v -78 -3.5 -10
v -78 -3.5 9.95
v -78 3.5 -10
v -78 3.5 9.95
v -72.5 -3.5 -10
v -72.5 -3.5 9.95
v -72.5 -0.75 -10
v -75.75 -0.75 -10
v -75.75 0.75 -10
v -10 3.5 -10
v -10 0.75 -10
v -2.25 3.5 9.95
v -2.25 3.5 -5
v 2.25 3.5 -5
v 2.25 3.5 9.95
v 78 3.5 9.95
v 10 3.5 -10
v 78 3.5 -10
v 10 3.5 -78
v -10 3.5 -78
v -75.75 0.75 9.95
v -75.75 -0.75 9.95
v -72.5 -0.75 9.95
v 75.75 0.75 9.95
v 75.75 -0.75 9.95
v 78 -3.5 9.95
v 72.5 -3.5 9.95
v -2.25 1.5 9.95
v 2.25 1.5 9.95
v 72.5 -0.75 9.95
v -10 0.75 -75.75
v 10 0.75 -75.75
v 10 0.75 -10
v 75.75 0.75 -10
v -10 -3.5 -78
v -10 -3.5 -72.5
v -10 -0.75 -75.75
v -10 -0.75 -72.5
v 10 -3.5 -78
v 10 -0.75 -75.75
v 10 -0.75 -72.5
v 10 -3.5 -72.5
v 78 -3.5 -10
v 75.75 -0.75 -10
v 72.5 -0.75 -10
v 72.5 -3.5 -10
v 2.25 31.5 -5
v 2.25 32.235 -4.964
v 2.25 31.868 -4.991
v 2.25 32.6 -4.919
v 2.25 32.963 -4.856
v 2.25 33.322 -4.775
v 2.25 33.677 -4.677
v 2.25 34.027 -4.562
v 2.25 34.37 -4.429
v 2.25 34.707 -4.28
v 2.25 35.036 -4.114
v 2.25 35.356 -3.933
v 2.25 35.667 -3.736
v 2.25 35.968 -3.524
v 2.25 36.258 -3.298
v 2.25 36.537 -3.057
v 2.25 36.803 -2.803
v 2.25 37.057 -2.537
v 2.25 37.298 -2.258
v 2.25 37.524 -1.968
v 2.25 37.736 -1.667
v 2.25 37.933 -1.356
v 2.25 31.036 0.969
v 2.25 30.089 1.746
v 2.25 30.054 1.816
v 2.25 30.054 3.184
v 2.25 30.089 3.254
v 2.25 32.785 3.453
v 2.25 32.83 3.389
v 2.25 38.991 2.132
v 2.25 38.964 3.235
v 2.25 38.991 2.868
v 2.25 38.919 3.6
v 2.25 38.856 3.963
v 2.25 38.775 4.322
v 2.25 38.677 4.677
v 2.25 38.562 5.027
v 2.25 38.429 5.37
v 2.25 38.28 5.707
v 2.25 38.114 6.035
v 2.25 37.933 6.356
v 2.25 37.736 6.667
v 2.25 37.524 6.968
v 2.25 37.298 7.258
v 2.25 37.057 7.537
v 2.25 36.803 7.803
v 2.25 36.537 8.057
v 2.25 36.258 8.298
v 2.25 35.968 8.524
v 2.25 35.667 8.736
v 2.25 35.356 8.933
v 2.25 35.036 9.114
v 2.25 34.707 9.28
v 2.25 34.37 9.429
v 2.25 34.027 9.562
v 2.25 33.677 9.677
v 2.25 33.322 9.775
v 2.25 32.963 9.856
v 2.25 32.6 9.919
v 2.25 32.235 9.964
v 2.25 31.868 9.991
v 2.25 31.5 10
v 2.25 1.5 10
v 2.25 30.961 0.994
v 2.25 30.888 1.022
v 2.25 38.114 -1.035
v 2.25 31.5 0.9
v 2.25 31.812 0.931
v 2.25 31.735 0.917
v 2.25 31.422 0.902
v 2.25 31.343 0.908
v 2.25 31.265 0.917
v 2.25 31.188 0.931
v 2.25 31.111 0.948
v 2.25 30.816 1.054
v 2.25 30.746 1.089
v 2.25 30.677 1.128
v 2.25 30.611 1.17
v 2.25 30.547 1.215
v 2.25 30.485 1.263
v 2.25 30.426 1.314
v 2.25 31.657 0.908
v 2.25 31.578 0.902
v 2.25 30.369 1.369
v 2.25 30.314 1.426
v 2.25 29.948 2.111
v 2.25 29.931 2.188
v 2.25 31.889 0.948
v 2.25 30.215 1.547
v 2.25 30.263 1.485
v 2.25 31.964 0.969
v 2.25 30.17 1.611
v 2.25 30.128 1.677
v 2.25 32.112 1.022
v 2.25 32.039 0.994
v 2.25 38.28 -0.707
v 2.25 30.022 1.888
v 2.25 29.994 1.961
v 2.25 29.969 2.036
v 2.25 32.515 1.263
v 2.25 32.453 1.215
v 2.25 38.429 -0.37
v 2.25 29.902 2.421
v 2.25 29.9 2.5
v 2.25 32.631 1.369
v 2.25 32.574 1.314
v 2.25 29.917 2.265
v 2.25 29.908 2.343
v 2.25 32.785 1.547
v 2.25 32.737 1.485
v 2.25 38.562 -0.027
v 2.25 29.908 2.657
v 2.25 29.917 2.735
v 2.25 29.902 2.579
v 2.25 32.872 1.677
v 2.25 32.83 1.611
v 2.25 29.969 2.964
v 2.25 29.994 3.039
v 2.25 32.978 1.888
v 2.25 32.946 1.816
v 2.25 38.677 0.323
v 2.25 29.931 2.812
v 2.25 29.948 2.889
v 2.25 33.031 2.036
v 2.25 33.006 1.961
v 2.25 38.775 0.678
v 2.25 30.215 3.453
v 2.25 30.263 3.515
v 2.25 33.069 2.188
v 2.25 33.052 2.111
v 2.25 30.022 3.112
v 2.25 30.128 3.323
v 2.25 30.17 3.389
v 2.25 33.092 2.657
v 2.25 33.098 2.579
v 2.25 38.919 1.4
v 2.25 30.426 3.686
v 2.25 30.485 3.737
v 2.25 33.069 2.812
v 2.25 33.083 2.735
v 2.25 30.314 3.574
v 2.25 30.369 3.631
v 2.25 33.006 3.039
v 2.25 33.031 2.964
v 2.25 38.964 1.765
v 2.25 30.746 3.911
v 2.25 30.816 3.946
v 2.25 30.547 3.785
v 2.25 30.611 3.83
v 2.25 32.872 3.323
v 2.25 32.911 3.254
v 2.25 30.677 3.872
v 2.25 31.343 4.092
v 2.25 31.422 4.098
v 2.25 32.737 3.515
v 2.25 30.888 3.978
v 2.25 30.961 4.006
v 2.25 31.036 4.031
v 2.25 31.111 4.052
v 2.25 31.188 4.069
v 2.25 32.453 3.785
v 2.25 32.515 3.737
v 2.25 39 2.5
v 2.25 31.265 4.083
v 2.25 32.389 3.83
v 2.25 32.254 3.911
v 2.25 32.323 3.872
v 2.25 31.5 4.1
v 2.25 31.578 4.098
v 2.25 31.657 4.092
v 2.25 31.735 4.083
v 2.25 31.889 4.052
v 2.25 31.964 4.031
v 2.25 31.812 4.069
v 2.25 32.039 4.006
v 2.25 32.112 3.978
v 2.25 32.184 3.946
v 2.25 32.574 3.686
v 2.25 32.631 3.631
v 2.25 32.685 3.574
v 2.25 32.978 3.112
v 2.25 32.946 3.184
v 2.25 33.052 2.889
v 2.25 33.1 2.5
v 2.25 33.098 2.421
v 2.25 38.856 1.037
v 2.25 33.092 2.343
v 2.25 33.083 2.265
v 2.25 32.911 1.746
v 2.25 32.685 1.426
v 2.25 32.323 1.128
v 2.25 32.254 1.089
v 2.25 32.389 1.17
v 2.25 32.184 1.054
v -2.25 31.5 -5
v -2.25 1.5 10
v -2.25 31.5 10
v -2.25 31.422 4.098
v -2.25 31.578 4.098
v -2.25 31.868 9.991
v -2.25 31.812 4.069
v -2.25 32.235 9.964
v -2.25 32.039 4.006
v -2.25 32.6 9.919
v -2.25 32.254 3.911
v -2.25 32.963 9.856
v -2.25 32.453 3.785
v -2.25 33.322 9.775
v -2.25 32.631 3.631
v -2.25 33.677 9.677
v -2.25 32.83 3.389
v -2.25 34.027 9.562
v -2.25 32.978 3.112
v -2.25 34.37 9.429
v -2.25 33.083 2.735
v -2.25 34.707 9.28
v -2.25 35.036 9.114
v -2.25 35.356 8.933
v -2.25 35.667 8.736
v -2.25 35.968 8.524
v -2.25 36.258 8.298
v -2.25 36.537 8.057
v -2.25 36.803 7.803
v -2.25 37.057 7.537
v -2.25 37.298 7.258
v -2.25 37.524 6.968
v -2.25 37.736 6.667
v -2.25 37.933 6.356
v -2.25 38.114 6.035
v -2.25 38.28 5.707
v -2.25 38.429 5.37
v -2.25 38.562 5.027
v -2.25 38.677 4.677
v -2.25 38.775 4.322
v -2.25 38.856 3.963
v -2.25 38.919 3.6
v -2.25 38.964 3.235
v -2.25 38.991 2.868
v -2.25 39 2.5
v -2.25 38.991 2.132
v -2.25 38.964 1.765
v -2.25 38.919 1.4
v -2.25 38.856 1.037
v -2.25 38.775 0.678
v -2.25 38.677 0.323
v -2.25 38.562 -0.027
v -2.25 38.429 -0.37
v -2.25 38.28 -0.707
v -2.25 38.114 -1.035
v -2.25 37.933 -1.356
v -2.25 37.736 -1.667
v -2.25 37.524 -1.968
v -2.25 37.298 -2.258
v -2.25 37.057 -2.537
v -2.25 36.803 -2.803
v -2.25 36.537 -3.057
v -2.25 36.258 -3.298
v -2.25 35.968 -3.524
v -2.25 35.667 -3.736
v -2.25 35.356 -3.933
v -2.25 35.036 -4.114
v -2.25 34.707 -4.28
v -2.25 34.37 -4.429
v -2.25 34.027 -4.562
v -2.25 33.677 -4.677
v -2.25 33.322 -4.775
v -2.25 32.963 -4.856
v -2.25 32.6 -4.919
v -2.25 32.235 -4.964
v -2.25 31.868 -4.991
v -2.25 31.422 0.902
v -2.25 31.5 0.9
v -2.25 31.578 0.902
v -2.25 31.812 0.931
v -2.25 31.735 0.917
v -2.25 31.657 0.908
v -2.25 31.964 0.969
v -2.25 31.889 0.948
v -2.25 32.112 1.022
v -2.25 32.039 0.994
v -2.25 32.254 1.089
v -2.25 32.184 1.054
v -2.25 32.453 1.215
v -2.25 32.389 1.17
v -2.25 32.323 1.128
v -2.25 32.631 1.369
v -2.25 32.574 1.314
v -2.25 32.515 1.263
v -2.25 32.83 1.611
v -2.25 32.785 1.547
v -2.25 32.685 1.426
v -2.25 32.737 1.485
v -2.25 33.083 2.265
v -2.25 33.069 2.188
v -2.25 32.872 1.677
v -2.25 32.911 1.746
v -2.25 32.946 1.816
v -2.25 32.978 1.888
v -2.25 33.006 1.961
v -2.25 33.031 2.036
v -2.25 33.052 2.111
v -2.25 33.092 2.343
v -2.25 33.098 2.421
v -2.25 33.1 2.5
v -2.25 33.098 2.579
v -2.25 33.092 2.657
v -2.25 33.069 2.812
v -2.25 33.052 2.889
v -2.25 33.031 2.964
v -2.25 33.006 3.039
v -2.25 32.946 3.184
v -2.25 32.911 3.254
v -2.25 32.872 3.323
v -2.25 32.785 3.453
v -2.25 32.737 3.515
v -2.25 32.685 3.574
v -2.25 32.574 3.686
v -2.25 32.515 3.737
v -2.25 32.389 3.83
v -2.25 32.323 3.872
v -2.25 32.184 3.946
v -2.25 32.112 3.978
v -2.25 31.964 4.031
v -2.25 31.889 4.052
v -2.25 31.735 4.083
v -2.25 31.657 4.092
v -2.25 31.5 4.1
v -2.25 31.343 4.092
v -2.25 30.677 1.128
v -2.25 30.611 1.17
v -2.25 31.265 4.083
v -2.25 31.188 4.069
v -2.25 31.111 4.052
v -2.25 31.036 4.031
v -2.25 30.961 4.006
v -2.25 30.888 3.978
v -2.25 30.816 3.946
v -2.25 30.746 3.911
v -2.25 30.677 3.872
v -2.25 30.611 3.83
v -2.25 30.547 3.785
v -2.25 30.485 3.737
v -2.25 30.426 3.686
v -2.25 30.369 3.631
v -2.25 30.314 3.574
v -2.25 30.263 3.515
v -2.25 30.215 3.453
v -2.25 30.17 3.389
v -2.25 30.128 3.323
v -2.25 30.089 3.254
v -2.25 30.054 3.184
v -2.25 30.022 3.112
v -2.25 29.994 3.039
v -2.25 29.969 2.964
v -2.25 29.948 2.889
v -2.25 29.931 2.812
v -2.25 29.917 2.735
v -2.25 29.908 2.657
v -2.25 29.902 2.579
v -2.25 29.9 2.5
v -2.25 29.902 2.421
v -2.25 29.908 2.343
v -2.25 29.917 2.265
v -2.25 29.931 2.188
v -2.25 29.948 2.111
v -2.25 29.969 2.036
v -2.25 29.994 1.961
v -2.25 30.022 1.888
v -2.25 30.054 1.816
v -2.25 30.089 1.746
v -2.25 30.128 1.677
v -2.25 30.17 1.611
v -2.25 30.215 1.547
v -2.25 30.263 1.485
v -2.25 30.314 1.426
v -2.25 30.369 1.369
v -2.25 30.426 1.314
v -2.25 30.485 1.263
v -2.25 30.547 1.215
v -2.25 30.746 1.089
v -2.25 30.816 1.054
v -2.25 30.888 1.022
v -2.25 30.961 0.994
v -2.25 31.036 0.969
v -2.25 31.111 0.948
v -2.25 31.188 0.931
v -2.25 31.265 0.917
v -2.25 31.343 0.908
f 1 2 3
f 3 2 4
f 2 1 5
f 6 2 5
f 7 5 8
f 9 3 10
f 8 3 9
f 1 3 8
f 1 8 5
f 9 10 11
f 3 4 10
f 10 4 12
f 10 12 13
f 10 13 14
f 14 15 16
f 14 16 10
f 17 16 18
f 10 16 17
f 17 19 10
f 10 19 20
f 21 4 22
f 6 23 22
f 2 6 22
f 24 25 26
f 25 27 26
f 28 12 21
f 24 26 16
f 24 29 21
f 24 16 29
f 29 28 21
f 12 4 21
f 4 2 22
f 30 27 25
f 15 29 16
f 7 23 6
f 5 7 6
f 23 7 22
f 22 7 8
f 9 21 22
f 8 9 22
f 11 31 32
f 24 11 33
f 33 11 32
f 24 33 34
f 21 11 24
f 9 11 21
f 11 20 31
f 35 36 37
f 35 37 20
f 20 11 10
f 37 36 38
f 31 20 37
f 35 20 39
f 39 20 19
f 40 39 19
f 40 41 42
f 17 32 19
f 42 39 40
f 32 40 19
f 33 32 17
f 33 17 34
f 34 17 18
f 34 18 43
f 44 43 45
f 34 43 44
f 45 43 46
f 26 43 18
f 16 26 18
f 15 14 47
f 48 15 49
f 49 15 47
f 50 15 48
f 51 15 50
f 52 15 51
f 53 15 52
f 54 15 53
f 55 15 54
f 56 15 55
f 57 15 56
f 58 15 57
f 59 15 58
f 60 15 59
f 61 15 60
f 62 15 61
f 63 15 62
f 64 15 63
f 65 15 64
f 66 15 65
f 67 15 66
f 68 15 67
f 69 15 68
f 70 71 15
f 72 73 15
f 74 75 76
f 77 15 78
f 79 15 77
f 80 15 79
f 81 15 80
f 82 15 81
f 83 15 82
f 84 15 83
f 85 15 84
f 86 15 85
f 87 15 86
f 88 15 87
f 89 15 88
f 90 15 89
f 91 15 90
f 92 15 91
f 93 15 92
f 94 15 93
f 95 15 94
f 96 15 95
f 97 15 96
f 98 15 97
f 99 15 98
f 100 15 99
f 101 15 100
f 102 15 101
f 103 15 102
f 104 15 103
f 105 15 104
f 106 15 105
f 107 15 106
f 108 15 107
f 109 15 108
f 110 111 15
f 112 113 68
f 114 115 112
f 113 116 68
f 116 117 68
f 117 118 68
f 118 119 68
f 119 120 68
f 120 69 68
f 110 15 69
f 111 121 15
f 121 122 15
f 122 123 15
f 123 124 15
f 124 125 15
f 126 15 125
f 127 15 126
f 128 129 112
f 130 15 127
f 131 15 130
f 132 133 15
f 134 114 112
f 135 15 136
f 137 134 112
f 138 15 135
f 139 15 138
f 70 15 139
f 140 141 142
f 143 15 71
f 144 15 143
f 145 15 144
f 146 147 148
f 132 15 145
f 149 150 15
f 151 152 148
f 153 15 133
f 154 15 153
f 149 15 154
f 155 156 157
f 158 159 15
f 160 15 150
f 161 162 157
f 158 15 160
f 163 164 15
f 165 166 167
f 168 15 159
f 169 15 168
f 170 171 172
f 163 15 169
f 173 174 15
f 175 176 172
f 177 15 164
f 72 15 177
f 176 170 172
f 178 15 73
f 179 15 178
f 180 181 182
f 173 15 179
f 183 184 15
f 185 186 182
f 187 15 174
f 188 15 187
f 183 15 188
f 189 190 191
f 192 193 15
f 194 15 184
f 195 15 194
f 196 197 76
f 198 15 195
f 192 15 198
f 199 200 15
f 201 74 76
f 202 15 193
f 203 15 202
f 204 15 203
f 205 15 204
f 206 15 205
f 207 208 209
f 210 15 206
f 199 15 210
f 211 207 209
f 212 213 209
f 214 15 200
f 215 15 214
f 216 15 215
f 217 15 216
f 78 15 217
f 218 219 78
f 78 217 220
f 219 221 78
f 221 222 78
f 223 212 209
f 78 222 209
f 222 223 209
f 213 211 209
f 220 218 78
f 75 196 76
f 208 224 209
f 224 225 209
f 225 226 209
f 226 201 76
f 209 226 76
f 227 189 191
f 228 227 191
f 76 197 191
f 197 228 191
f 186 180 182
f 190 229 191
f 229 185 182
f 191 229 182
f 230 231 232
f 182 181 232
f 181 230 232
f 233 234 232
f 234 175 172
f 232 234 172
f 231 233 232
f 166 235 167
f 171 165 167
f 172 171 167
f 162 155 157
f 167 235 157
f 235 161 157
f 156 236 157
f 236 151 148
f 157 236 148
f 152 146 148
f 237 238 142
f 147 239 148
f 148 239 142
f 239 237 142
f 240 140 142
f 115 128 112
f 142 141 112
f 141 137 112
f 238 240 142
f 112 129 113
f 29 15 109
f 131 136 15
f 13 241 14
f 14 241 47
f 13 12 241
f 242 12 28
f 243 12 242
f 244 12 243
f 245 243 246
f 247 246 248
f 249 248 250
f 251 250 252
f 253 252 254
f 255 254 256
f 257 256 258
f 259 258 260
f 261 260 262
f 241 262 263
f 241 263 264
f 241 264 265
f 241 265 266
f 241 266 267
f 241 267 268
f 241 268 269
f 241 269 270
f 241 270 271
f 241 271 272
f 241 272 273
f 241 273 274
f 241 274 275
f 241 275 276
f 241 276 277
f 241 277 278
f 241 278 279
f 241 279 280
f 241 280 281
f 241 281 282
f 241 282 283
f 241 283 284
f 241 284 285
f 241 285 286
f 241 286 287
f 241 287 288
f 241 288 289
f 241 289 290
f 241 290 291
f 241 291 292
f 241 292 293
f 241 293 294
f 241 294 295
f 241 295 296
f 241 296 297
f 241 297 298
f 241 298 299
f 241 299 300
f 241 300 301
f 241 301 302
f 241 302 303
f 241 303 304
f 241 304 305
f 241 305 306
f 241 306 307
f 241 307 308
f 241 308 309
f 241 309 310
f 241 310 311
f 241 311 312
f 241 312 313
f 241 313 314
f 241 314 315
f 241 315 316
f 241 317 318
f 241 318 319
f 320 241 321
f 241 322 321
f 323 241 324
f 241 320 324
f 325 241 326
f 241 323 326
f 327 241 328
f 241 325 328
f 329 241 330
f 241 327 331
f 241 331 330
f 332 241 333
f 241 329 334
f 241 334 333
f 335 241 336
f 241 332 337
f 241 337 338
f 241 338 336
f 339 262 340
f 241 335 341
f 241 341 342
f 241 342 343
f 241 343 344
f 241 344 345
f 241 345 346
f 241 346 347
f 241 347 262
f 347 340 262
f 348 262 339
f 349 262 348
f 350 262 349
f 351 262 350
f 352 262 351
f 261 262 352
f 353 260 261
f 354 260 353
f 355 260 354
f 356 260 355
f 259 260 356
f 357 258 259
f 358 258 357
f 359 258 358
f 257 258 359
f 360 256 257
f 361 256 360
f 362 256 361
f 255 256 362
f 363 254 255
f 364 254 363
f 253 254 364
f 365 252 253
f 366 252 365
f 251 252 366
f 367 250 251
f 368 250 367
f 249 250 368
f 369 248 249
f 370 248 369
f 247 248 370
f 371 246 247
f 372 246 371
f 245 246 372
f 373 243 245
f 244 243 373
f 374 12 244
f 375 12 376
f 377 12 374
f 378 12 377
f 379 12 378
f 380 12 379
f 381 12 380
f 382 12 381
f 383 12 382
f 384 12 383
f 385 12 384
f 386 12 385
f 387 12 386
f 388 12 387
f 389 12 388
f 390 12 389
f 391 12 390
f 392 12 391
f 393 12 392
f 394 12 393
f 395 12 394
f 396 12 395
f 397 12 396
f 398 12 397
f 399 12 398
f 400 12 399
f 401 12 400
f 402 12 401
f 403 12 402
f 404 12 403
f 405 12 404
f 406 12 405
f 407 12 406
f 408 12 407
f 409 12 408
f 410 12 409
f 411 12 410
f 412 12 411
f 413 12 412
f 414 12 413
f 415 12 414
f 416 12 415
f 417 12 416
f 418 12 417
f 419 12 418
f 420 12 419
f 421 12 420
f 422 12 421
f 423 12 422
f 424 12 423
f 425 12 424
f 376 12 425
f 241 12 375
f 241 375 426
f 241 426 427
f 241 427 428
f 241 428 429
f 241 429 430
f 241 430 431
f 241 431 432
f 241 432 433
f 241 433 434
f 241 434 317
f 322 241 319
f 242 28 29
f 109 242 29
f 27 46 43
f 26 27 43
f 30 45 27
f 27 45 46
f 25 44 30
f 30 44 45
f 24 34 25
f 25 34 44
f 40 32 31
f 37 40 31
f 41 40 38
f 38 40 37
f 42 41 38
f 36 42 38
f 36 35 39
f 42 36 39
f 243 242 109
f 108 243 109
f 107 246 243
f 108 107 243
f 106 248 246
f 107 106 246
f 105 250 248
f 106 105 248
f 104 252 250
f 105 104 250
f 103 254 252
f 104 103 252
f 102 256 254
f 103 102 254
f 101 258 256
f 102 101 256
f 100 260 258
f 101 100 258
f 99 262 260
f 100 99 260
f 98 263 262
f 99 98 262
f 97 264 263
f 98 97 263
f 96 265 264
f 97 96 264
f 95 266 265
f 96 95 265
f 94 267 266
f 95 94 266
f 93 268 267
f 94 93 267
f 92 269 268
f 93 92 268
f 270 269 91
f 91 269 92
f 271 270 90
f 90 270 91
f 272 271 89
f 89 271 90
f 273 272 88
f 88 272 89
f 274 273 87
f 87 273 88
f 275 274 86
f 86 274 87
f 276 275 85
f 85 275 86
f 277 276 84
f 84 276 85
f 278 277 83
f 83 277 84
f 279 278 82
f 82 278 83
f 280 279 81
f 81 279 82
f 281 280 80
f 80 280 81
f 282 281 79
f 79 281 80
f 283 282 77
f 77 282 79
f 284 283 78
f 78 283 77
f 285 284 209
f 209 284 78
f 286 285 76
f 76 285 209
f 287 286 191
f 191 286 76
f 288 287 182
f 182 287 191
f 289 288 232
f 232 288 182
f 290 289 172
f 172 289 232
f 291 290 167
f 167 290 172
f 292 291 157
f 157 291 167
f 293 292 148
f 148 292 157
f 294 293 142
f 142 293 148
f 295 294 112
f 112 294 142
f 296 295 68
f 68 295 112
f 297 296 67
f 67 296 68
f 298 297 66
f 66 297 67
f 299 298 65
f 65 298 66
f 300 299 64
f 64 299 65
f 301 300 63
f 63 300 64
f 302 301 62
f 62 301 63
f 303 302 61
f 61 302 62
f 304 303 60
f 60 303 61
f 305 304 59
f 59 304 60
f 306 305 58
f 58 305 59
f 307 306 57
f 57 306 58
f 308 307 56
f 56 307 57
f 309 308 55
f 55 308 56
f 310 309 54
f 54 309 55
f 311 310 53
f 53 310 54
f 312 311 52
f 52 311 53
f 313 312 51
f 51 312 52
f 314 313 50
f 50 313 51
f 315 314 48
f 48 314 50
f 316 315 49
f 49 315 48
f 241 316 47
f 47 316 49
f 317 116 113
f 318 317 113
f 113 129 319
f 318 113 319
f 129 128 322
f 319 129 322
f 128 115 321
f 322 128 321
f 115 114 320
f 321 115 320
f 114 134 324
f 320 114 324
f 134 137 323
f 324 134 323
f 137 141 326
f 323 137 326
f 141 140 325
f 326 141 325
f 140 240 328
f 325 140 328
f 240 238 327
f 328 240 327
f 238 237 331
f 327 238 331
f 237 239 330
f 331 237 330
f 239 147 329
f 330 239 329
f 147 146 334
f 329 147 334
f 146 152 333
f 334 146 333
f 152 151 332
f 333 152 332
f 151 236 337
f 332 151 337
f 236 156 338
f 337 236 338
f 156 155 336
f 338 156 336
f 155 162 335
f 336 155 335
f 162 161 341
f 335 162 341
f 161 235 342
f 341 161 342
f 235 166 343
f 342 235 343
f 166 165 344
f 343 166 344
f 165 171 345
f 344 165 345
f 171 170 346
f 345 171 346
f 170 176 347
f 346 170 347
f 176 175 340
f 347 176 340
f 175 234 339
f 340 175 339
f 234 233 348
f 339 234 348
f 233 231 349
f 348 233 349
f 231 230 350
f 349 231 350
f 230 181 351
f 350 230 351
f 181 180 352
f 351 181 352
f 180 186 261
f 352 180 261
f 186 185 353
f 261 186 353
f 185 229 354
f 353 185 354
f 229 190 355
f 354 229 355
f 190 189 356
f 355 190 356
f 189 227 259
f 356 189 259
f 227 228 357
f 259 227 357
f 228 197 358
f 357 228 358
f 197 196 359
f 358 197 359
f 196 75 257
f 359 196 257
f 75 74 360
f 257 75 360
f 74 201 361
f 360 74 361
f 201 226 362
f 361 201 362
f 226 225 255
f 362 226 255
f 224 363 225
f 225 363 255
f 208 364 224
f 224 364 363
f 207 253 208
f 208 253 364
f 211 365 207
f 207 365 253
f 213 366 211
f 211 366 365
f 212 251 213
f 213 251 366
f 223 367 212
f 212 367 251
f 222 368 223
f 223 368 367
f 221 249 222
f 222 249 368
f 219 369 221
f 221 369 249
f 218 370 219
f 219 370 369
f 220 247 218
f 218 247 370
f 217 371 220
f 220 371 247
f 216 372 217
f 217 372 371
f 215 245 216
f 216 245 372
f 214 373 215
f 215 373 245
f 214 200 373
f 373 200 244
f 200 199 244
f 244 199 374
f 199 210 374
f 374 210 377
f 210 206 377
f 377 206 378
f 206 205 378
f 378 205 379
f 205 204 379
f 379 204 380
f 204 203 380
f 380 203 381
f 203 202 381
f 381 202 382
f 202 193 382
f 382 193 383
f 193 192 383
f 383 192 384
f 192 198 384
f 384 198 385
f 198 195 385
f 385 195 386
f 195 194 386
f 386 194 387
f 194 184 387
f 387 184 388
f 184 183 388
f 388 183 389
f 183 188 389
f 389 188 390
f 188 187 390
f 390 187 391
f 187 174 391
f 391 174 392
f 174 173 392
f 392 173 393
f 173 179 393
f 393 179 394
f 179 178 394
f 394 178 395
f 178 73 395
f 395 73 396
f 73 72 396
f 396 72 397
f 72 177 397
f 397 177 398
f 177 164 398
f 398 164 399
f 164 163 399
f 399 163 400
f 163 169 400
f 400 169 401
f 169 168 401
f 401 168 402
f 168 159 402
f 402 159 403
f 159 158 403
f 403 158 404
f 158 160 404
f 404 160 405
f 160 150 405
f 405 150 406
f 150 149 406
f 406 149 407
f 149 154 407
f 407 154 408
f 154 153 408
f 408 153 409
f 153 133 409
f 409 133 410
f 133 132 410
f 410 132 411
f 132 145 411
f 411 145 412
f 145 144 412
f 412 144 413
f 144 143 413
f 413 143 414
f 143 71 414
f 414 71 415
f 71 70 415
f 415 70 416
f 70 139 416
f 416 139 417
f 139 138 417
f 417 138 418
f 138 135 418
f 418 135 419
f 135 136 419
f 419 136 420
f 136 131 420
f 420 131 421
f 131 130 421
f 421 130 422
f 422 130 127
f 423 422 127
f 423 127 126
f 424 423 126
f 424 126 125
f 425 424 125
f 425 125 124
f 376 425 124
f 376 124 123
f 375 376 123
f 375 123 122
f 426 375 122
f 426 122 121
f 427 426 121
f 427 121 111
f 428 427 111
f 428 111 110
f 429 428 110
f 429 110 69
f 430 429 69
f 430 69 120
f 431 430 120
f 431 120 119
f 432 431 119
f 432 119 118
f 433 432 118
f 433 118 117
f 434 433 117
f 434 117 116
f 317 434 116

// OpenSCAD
$fn=128;

// mirror
%cube([150, 1, 150], center=true);

// mirror frame
difference()
{
	difference()
	{
		difference()
		{
			union(){
				cube([156, 7, 20], center=true);
				cube([20, 7, 156], center=true);
			}
			translate([0, -2, 0]) cube([145, 4, 145], center=true);
		}
		cube([151.5, 1.5, 151.5], center=true);
	}
	translate([0, 0, 44]) cube([156, 10, 68.1], center=true);
}

rotate([90,180,90]) translate([-31.5, -2.5, 0])
{
	difference() {
		union(){
			cylinder(r=15/2, h=4.5, center=true);
			translate([15, 0, 0]) cube([30, 15, 4.5], center=true);
		}
		cylinder(r=3.2/2, h=20.1, center=true);
	}
}
